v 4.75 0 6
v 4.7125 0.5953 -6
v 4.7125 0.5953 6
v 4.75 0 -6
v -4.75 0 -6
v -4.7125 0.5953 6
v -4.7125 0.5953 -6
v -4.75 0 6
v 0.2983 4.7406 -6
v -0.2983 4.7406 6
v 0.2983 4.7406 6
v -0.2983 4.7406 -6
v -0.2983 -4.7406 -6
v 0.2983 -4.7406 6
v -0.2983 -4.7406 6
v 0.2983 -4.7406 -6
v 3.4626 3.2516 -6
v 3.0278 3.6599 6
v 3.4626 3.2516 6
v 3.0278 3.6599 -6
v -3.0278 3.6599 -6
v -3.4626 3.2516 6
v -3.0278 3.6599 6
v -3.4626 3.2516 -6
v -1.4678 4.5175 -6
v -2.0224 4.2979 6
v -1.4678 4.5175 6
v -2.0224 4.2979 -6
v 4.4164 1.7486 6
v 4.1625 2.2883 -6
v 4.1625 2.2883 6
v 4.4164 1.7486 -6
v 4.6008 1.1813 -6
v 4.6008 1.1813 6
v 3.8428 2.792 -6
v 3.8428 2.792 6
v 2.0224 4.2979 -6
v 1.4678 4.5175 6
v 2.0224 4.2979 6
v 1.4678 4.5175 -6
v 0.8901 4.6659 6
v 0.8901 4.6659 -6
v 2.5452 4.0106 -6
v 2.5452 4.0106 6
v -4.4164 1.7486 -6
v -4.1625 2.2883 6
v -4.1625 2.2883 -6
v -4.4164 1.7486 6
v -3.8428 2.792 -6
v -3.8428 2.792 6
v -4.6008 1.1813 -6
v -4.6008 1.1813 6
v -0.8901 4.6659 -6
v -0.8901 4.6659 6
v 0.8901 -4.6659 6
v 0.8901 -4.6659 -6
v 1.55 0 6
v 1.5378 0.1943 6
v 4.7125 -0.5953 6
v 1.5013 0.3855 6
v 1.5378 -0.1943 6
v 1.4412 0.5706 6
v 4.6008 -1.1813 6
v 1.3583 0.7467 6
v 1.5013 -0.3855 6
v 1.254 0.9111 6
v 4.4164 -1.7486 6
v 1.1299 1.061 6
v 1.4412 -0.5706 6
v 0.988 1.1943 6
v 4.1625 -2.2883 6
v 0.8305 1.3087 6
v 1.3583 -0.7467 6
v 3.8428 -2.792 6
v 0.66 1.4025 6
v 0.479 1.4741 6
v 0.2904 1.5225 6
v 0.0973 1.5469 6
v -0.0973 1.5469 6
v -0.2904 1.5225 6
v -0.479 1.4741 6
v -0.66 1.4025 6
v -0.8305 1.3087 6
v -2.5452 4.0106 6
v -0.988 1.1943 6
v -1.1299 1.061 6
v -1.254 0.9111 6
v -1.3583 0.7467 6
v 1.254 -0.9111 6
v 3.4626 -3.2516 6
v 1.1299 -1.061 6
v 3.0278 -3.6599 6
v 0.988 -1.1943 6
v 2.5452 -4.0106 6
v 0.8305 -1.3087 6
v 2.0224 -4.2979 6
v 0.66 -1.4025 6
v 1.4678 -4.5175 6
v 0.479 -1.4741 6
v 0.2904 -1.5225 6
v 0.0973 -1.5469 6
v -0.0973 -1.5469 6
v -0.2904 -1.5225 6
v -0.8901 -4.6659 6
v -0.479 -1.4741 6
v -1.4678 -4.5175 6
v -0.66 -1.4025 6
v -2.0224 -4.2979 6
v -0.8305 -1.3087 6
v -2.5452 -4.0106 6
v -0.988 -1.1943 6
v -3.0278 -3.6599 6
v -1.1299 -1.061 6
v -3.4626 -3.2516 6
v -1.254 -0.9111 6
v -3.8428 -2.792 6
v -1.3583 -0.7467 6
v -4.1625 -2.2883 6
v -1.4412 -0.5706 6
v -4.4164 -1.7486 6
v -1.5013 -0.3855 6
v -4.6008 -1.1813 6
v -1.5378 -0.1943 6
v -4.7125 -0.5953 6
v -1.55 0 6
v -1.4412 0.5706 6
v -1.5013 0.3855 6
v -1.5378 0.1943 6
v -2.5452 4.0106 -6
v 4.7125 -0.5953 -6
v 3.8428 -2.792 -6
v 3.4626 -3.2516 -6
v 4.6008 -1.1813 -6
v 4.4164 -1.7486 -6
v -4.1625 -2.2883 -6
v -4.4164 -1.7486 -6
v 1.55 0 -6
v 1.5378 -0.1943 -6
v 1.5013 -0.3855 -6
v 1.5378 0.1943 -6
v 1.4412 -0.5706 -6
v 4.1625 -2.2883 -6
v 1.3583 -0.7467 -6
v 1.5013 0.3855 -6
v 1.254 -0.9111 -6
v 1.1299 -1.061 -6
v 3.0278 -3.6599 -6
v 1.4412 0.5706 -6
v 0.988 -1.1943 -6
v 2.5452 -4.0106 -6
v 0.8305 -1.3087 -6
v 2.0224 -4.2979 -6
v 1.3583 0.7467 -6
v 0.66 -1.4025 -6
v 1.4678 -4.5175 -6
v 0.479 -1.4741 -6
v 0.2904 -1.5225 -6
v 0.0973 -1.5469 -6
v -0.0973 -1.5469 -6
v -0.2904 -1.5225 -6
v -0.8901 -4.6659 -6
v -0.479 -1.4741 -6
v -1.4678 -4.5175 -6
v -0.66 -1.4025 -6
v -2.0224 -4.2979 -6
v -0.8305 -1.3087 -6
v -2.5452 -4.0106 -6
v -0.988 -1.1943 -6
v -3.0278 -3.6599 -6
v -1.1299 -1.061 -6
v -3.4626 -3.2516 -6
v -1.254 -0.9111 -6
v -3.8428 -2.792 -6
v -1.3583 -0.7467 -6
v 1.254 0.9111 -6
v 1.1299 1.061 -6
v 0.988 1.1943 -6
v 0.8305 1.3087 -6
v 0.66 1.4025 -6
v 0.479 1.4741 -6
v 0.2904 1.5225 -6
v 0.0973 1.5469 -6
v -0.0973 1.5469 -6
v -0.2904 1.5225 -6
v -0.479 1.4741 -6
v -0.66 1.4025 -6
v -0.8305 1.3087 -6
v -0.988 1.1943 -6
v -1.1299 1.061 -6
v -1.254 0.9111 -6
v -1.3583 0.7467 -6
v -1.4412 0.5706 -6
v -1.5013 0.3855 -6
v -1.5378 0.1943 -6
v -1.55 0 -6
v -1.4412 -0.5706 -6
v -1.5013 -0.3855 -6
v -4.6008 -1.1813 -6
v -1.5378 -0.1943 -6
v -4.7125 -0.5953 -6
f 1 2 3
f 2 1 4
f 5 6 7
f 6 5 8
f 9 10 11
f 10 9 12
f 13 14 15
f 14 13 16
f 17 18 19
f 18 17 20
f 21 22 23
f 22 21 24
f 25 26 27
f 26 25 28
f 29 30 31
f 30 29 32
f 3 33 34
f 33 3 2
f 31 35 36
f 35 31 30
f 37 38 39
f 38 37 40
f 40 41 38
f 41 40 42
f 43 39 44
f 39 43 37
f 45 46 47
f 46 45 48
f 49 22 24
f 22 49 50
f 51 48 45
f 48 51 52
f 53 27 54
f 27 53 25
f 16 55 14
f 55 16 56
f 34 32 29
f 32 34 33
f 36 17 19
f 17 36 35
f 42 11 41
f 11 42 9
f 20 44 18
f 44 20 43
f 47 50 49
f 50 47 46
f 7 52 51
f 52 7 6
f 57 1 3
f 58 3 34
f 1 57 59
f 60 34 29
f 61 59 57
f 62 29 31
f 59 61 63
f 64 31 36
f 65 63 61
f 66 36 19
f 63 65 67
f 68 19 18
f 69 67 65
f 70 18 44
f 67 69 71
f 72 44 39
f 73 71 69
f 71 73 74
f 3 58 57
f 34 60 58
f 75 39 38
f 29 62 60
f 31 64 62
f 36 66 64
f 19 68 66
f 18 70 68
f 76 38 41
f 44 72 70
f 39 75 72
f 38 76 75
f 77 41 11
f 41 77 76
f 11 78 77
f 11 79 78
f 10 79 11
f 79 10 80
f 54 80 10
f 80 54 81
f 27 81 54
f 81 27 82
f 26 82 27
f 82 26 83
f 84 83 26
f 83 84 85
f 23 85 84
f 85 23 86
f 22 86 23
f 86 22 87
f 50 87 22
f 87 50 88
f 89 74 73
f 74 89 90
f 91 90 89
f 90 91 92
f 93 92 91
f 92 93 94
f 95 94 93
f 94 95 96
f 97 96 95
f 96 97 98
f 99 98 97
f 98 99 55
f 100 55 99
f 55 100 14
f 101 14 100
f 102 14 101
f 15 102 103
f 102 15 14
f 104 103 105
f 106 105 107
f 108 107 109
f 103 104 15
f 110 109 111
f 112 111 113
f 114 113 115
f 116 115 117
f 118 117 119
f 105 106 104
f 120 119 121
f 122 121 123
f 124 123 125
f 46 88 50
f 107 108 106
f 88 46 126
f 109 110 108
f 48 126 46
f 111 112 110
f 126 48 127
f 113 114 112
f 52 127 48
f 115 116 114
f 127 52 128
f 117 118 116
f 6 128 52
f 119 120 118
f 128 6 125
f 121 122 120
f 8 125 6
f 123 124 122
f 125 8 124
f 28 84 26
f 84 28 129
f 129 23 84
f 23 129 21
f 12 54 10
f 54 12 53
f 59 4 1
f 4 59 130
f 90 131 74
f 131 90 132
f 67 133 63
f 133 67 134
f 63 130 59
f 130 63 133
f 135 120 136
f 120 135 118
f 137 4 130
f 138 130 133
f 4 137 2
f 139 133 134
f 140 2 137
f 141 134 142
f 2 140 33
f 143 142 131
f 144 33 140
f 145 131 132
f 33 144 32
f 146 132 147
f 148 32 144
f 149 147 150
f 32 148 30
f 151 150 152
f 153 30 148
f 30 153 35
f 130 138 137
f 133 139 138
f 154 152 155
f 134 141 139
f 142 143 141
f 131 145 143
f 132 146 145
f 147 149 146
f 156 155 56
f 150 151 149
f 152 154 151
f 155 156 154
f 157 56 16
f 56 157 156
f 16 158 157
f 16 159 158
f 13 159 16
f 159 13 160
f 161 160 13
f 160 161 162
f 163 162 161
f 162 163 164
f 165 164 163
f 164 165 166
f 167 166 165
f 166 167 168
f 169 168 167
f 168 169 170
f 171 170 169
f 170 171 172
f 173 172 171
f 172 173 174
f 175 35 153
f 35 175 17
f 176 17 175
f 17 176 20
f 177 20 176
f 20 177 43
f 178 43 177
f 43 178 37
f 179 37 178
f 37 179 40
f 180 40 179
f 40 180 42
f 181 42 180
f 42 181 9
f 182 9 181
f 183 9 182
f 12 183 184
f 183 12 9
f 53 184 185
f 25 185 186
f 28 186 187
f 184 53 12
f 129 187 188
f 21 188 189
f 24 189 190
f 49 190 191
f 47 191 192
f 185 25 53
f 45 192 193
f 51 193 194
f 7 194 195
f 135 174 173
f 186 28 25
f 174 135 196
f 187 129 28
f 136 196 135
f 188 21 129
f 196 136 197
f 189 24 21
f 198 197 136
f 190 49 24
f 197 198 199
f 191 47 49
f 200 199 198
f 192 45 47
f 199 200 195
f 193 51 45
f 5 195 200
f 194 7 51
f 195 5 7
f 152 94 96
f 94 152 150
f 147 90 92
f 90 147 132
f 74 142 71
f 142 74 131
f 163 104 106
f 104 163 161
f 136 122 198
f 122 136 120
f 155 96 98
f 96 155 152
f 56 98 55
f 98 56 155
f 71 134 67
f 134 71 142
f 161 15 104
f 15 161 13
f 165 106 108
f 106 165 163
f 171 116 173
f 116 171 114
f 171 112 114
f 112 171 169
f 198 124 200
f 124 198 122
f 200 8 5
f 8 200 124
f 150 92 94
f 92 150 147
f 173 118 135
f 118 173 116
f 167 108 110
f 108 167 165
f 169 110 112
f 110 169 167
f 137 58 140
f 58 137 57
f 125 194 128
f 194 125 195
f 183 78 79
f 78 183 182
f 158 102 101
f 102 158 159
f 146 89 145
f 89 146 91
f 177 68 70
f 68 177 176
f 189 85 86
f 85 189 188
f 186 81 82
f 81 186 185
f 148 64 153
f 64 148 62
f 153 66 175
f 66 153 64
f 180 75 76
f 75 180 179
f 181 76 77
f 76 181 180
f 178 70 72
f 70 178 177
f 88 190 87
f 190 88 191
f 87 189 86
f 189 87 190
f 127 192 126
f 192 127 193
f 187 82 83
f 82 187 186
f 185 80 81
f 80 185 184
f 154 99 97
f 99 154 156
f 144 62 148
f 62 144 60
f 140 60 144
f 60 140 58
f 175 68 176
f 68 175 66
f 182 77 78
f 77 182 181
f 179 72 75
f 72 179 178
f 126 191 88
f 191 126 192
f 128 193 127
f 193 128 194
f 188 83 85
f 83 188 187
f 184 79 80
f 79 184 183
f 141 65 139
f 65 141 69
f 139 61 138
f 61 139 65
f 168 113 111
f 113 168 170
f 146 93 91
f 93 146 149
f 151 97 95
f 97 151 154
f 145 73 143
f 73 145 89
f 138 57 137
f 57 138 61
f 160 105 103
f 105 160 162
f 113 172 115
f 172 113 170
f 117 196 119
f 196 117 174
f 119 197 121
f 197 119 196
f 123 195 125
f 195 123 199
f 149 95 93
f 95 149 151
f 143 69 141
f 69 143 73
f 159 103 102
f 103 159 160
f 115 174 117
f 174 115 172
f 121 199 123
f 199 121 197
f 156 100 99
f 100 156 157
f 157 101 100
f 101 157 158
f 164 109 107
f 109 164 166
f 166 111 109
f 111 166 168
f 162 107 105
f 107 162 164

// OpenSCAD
$fn = 50;


difference() {
	union() {
		translate(v = [0, 0, -6.0000000000]) {
			cylinder(h = 12, r = 4.7500000000);
		}
	}
	union() {
		translate(v = [0, 0, -100.0000000000]) {
			cylinder(h = 200, r = 1.5500000000);
		}
	}
}
